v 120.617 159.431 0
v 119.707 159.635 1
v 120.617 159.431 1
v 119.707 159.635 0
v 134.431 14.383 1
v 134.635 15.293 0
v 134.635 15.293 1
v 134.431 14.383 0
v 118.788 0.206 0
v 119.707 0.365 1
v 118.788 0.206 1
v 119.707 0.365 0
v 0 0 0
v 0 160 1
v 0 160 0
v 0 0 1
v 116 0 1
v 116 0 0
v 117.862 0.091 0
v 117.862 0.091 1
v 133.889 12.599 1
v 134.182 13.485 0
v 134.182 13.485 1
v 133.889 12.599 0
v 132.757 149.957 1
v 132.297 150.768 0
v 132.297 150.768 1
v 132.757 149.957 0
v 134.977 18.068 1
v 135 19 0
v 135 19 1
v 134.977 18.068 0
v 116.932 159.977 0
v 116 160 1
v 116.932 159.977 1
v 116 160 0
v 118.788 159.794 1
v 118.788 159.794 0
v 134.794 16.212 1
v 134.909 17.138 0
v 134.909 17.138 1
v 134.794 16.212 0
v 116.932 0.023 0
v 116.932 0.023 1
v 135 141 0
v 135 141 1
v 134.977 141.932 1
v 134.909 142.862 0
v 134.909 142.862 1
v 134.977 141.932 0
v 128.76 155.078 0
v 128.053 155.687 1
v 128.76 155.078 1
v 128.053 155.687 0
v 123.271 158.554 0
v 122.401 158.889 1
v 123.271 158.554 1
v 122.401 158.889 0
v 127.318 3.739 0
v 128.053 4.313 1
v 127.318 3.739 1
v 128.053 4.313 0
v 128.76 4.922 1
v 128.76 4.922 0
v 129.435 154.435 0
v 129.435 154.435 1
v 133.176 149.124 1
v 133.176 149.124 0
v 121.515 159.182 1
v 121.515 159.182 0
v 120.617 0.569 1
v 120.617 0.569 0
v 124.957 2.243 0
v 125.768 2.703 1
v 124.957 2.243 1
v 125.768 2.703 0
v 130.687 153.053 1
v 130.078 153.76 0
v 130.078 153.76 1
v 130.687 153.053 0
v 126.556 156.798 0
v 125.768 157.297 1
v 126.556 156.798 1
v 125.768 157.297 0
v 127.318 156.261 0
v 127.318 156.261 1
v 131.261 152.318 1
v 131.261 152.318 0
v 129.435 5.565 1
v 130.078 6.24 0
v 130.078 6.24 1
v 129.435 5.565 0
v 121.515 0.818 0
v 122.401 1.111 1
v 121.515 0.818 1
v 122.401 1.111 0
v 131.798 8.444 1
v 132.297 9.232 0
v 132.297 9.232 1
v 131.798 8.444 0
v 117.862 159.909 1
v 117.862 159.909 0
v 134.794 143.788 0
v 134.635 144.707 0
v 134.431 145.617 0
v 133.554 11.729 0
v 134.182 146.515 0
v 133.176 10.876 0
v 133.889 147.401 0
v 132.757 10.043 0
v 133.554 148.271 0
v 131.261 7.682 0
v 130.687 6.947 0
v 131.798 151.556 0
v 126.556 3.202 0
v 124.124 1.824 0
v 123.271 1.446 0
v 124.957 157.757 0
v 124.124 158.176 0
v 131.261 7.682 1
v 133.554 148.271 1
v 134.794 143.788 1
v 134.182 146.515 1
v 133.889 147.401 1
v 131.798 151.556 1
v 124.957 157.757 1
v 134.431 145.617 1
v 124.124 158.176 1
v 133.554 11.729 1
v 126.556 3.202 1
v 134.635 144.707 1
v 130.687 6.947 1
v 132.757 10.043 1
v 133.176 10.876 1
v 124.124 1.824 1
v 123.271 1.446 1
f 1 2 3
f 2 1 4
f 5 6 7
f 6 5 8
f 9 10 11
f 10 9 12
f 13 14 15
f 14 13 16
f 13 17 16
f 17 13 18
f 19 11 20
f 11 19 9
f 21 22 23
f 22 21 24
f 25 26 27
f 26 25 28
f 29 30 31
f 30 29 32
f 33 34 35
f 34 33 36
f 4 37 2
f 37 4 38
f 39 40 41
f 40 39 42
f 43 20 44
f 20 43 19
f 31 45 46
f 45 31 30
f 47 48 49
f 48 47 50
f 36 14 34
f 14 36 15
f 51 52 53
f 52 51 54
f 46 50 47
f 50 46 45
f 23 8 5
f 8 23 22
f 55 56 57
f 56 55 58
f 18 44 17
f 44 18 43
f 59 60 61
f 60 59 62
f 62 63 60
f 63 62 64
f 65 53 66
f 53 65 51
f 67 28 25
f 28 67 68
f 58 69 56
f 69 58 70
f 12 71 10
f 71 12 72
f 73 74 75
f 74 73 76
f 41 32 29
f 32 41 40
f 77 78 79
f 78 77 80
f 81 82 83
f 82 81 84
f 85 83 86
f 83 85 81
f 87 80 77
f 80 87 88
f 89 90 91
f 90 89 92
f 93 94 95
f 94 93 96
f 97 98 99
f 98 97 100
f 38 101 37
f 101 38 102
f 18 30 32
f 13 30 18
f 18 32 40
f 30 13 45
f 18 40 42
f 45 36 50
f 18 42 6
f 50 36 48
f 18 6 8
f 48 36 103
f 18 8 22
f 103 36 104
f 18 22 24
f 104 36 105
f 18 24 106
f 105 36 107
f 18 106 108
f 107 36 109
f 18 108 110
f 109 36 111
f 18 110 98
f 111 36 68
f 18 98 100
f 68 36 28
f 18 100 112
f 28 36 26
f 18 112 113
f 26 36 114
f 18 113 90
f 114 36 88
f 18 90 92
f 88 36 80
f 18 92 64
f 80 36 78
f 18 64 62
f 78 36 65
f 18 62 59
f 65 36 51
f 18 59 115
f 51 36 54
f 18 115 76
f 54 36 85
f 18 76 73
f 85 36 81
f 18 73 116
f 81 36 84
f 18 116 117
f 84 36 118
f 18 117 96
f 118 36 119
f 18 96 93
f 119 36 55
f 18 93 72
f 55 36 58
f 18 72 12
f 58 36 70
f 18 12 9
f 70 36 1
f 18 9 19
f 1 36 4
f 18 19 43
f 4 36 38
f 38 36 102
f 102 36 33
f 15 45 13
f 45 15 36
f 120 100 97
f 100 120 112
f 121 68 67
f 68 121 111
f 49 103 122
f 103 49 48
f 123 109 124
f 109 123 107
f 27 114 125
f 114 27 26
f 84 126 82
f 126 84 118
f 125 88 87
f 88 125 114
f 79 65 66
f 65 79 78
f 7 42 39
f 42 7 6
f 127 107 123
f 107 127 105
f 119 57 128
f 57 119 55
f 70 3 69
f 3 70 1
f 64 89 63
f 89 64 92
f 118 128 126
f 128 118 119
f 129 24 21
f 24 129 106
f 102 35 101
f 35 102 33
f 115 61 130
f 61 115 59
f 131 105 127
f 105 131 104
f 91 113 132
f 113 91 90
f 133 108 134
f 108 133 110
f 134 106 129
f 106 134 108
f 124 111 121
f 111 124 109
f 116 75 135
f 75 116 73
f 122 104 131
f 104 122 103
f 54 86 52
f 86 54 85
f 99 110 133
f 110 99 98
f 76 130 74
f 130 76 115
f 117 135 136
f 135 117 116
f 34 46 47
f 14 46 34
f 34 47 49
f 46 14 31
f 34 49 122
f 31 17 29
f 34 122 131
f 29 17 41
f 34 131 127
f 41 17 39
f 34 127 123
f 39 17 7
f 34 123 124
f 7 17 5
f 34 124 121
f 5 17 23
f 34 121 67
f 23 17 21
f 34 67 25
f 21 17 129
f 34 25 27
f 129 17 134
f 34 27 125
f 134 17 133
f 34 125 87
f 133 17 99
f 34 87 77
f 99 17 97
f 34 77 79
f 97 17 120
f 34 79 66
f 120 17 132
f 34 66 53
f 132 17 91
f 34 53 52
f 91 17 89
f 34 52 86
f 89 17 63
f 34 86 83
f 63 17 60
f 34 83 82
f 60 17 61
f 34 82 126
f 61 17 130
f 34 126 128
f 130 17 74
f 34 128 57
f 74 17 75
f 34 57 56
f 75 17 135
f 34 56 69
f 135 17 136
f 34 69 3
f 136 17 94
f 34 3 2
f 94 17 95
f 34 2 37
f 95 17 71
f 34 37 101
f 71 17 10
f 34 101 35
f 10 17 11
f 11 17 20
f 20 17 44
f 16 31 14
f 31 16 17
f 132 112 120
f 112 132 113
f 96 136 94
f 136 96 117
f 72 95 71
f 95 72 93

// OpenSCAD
// Parameters
$fn=128;

length = 270 / 2; // Length of the box
width = 160; // Width of the box
height = 1; // Height of the box
radius = 19; // Radius for rounding corners

// Create the 3D model with rounded corners
module rounded_box() {
        // Extrude a rounded rectangle to create a 3D box
        translate([radius,radius,0]) linear_extrude(height) {
            offset(r=radius) {
                square([length-radius*2, width-radius*2], center=false);
            }
        }

}

// Render the model
rounded_box();
cube([length/2, width, height]);
